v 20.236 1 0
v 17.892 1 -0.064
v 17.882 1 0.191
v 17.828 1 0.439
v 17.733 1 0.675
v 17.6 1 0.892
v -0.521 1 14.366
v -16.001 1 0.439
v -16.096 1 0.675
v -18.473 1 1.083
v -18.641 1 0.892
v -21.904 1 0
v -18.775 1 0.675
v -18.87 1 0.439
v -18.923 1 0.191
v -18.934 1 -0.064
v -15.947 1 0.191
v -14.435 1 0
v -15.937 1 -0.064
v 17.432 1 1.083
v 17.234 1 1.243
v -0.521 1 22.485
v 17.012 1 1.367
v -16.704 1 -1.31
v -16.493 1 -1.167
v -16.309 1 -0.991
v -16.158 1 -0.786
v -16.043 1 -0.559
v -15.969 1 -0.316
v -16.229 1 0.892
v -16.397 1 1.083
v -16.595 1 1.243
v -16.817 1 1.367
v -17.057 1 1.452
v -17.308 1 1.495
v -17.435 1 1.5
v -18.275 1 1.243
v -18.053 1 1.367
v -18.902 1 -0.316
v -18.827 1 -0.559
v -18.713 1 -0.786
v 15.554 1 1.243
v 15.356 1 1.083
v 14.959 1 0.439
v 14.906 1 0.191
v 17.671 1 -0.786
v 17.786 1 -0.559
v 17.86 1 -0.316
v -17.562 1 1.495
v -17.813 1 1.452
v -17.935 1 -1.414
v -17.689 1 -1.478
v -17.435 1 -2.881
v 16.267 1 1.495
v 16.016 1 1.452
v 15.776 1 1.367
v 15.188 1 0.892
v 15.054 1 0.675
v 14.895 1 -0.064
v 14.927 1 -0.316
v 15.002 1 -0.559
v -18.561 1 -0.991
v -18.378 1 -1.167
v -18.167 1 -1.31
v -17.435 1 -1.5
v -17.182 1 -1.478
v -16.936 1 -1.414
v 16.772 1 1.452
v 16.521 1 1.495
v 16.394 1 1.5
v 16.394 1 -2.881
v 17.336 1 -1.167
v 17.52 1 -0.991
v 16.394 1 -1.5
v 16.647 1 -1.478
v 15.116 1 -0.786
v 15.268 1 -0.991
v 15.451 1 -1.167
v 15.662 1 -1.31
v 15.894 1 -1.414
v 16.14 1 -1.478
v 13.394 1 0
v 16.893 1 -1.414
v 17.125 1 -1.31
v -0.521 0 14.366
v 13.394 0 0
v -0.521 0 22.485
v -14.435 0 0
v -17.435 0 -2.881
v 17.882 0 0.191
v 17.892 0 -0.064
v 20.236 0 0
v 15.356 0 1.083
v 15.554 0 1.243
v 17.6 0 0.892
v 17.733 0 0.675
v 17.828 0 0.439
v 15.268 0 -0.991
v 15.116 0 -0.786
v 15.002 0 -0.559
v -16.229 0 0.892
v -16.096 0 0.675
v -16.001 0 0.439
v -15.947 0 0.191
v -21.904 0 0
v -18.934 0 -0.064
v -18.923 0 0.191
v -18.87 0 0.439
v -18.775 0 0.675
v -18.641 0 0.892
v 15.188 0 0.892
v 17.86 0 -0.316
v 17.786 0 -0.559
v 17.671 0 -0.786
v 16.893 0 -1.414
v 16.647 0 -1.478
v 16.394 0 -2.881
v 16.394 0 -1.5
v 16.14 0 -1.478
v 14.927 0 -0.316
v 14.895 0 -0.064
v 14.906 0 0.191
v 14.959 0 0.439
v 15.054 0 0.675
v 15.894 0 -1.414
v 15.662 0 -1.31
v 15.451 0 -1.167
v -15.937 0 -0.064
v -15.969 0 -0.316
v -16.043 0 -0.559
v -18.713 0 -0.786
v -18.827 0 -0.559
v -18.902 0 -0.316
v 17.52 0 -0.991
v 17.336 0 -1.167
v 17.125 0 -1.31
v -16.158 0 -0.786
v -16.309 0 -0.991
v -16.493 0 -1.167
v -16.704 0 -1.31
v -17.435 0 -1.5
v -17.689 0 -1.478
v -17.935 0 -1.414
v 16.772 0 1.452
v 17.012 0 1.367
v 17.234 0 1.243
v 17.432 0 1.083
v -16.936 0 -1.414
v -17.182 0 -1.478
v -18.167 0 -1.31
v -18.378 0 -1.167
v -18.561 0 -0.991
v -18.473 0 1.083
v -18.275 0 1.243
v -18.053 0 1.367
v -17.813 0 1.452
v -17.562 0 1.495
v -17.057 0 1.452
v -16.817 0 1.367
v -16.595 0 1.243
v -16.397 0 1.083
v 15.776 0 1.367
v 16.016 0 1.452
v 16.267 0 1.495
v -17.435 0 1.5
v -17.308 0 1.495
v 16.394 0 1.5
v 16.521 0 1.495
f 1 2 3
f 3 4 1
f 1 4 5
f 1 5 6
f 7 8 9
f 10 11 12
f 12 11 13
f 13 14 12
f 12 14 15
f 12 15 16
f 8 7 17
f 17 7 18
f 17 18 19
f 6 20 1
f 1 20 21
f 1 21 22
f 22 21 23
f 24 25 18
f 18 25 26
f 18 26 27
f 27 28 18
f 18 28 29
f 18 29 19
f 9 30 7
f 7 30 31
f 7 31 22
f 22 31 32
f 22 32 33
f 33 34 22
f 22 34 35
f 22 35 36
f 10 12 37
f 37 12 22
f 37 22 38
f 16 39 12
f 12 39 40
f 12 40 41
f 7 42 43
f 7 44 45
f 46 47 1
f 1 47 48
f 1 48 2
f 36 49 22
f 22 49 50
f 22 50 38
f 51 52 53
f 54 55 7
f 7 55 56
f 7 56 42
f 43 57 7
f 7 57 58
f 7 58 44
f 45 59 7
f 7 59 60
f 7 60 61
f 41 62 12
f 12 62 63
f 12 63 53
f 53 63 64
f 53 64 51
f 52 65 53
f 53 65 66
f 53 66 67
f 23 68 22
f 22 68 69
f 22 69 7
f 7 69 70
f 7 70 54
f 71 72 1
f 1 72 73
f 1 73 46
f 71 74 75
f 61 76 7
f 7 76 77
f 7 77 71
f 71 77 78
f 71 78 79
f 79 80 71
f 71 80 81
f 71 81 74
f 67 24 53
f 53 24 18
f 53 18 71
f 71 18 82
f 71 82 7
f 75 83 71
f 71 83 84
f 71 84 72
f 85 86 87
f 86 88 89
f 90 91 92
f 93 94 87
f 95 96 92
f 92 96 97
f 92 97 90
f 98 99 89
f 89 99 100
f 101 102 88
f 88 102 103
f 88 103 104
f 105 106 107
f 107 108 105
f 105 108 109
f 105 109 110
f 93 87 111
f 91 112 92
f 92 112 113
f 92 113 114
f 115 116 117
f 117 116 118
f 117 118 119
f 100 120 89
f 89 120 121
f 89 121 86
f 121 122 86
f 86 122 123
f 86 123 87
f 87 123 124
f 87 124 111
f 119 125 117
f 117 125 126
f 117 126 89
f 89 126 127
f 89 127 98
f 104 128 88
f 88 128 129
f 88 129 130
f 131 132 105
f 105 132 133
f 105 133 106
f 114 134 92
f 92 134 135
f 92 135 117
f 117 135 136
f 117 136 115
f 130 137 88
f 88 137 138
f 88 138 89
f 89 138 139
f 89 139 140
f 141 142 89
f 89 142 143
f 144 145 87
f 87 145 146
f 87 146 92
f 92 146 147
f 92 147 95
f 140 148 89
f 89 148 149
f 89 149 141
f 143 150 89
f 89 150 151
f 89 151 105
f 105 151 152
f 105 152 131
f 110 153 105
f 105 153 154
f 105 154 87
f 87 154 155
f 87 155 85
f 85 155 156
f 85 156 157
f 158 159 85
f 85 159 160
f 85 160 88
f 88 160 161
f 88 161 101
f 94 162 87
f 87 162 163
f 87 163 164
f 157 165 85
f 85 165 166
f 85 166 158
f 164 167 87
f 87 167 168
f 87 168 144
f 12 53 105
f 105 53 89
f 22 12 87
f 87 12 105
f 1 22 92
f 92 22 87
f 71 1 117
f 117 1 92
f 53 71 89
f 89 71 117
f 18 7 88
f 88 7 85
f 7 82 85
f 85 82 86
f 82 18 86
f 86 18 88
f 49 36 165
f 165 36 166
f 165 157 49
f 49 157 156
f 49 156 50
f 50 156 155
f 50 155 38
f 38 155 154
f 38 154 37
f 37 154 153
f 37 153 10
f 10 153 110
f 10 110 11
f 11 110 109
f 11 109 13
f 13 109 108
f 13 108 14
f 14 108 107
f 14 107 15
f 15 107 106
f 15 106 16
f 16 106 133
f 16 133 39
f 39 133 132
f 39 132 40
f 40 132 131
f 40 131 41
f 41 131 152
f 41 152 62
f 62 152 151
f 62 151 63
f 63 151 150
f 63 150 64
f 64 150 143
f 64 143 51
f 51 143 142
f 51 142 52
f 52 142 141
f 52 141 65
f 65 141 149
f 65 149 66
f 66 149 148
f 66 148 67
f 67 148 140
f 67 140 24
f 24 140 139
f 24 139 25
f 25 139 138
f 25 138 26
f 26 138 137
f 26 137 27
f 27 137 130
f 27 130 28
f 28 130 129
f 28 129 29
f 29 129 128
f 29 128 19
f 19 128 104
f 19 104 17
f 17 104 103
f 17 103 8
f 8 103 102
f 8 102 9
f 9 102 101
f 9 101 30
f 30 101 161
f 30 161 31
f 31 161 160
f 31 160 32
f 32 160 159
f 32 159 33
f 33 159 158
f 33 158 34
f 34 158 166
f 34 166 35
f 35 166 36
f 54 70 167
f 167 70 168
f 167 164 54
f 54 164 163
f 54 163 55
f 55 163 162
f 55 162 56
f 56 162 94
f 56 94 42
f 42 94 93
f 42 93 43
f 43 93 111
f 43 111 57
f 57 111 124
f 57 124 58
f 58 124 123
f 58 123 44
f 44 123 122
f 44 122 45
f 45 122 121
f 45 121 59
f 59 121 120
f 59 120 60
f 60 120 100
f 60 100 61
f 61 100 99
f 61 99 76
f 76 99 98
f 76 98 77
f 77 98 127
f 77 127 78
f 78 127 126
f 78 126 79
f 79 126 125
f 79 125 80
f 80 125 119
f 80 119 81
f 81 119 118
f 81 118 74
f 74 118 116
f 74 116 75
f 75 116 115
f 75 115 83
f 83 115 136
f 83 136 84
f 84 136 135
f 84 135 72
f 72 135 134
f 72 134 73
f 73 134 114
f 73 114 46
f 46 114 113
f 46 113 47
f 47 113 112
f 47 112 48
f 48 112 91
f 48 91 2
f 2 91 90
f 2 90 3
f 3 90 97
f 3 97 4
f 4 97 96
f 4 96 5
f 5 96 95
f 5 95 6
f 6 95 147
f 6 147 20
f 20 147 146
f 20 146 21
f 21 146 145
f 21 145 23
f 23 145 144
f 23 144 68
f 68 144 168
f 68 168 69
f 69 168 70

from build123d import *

# Parameters (mm, degrees)
SKETCH_1_R      = 1.5
EXTRUDE_4_DEPTH = 1


with BuildPart() as part:
    # 草图1 → 凸台-拉伸4 (new body)
    with BuildSketch(Plane(origin=(0, 0, 0), x_dir=(1, 0, 0), z_dir=(0, 1, 0))):
        Polygon((-17.435269168, 2.881354455), (16.393730682, 2.881354455), (20.235837144, 0), (-0.520769243, -22.484942941), (-21.903688145, 0), align=None)
        with Locations((-17.435269168, 0)):
            Circle(SKETCH_1_R, mode=Mode.SUBTRACT)
        with Locations((16.393730682, 0)):
            Circle(SKETCH_1_R, mode=Mode.SUBTRACT)
        Polygon((-14.435269168, 0), (0, 0), (13.393730682, 0), (-0.520769243, -14.366164827), align=None, mode=Mode.SUBTRACT)
    extrude(amount=EXTRUDE_4_DEPTH)


solid = part.part
